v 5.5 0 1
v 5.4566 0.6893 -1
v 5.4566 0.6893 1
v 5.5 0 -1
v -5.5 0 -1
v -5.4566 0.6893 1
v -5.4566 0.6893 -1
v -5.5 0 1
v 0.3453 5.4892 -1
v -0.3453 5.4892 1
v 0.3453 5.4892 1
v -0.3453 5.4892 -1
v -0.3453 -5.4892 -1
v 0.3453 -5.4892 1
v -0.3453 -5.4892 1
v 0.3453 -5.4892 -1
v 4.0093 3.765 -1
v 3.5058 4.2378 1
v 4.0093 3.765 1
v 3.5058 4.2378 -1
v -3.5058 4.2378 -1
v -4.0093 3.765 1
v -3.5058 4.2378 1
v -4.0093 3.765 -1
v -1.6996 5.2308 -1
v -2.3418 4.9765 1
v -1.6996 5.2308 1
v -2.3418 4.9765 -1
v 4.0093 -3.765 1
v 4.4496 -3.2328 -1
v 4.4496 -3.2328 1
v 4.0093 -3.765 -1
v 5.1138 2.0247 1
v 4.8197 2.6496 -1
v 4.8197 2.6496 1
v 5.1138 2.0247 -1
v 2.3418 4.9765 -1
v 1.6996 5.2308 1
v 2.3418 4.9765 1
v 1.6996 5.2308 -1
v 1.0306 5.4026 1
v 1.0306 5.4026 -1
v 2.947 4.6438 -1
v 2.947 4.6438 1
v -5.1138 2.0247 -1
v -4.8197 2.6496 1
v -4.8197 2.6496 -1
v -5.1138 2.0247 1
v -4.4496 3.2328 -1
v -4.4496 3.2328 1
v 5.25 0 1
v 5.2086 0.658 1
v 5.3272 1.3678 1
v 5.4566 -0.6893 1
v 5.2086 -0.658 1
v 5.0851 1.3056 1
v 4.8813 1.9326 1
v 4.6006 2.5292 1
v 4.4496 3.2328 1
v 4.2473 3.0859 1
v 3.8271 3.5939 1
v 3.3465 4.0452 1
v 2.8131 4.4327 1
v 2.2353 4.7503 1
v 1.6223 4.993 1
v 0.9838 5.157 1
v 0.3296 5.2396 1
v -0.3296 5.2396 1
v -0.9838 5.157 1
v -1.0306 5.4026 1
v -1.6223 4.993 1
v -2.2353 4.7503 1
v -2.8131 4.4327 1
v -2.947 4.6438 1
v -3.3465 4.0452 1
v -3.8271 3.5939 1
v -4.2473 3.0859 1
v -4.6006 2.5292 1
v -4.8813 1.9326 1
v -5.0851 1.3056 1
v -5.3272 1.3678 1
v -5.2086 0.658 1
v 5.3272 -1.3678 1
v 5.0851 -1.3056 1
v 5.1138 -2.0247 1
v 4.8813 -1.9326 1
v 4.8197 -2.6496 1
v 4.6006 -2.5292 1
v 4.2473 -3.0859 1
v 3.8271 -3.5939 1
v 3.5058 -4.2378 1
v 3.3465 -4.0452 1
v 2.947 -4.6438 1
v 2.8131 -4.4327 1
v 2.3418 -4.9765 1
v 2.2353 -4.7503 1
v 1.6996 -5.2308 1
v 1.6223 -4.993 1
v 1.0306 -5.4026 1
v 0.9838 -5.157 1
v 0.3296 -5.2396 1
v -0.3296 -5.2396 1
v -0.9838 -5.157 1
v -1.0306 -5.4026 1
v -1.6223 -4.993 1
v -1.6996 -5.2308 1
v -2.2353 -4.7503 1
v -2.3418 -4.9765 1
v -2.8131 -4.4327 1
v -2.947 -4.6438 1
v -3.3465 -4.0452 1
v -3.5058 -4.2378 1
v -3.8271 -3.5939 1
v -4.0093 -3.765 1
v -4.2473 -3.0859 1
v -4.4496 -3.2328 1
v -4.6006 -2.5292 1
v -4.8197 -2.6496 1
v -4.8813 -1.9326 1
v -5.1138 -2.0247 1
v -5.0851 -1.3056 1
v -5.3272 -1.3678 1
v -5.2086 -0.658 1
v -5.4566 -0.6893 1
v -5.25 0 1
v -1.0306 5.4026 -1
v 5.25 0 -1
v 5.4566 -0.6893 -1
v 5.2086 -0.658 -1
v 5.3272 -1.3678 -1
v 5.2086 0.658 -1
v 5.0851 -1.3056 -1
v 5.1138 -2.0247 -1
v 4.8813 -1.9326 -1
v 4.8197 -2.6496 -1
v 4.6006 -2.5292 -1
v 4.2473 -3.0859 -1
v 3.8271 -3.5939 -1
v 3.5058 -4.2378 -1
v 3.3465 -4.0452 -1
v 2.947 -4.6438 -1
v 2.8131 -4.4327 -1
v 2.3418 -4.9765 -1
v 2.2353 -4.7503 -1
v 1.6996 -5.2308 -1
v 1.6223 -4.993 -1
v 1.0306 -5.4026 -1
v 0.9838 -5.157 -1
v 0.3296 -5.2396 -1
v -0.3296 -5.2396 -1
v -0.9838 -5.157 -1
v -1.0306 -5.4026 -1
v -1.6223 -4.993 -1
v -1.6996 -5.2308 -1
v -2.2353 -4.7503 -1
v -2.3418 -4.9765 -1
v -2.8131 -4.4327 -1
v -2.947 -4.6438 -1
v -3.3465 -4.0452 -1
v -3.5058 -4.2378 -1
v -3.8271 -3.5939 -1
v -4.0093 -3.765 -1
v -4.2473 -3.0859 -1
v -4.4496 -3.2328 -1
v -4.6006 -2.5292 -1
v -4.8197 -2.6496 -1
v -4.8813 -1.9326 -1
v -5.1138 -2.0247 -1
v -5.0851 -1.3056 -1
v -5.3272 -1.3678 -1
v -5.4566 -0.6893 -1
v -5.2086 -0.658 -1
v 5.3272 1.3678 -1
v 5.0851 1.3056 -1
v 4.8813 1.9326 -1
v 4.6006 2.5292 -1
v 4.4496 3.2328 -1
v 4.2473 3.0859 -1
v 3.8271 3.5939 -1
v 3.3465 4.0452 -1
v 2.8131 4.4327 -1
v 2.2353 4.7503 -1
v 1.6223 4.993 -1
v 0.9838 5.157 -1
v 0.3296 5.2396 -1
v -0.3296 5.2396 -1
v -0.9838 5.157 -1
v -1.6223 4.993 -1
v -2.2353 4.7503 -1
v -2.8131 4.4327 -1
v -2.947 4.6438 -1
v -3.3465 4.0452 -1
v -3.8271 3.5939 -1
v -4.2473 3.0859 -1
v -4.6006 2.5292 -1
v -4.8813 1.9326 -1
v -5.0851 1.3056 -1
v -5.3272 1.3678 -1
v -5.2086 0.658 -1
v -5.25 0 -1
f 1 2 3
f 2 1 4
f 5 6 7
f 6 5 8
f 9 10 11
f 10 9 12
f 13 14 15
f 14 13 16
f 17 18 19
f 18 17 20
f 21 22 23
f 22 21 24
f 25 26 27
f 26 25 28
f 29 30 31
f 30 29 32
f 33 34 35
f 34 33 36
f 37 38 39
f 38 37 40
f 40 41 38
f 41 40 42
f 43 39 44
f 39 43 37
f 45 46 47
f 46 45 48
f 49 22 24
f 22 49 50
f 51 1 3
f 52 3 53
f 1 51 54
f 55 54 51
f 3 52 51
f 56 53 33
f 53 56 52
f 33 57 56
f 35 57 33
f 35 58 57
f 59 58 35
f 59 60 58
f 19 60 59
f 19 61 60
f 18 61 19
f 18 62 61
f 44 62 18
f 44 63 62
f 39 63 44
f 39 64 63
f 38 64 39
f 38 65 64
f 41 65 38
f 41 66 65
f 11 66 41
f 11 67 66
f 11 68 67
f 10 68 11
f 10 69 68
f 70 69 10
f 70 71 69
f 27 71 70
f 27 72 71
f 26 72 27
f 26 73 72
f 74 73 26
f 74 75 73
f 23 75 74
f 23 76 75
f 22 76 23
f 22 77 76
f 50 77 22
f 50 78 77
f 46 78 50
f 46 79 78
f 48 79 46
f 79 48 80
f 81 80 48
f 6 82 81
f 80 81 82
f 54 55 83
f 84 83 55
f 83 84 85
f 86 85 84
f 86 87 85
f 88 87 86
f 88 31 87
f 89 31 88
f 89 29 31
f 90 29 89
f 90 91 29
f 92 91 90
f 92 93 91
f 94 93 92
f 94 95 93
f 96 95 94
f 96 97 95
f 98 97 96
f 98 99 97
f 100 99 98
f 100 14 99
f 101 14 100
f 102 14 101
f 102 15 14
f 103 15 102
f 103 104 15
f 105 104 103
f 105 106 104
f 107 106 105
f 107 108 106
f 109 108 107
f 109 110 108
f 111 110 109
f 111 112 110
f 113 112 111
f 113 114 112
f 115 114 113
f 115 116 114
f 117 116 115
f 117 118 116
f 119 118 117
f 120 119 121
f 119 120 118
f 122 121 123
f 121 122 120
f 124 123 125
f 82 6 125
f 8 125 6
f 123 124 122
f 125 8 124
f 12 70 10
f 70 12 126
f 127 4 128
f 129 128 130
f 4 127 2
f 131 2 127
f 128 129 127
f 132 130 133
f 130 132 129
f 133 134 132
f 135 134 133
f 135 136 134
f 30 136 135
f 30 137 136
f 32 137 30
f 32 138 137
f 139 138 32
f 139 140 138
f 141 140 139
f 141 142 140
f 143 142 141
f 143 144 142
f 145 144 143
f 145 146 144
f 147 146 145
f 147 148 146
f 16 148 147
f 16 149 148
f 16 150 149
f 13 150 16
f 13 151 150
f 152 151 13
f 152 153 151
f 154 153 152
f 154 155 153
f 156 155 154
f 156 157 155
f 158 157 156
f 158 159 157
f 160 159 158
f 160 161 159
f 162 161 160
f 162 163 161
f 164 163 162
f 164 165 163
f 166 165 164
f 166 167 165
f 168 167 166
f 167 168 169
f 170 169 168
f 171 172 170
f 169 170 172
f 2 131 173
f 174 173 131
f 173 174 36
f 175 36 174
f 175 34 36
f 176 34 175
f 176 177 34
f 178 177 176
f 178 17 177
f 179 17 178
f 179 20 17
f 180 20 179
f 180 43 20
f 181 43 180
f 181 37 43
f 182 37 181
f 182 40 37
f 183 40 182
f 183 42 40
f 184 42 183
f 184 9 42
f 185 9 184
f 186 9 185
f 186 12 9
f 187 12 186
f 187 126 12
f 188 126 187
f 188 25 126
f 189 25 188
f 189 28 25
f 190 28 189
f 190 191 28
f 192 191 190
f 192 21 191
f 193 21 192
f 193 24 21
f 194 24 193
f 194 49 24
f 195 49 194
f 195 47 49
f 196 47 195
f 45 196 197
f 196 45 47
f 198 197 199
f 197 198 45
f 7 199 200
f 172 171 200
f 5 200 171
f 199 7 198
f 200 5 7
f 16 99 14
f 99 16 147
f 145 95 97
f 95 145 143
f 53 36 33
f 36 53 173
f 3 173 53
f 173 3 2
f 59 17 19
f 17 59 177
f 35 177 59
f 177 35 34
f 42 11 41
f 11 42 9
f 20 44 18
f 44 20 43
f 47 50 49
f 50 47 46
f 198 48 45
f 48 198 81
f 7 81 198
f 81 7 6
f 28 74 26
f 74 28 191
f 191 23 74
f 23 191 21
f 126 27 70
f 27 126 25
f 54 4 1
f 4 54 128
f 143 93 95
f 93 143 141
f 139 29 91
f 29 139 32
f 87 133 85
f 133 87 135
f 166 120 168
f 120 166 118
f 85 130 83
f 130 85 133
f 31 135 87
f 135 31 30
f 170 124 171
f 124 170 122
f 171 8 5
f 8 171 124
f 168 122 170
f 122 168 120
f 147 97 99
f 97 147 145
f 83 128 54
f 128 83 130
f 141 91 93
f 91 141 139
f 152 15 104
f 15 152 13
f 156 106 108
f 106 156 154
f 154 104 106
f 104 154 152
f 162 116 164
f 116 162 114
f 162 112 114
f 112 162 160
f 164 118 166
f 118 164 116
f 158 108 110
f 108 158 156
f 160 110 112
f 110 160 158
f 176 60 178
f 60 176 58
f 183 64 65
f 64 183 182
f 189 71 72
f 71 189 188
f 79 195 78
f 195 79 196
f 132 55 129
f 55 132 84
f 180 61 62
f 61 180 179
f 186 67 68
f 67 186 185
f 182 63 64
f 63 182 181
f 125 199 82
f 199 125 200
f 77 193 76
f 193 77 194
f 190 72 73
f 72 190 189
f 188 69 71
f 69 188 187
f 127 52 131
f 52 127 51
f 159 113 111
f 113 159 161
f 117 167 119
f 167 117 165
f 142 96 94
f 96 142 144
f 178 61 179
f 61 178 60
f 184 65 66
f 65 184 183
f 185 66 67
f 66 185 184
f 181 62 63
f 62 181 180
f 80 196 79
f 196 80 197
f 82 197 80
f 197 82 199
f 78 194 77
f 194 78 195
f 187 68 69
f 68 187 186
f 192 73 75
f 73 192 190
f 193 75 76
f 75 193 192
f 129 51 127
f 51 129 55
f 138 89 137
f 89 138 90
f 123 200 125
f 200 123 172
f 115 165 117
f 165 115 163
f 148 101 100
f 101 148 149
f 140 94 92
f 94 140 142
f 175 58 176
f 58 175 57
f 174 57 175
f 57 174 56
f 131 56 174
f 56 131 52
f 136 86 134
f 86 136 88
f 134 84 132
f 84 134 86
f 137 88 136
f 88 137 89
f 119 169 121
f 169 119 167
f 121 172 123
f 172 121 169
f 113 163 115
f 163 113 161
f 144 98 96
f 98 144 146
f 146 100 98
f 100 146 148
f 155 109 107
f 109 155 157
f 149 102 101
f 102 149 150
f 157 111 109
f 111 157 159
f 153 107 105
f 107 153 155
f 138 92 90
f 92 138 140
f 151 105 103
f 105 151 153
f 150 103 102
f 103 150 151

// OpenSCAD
$fn = 50;


difference() {
	union() {
		translate(v = [0, 0, -1.0000000000]) {
			cylinder(h = 2, r = 5.5000000000);
		}
	}
	union() {
		translate(v = [0, 0, -100.0000000000]) {
			cylinder(h = 200, r = 5.2500000000);
		}
	}
}
